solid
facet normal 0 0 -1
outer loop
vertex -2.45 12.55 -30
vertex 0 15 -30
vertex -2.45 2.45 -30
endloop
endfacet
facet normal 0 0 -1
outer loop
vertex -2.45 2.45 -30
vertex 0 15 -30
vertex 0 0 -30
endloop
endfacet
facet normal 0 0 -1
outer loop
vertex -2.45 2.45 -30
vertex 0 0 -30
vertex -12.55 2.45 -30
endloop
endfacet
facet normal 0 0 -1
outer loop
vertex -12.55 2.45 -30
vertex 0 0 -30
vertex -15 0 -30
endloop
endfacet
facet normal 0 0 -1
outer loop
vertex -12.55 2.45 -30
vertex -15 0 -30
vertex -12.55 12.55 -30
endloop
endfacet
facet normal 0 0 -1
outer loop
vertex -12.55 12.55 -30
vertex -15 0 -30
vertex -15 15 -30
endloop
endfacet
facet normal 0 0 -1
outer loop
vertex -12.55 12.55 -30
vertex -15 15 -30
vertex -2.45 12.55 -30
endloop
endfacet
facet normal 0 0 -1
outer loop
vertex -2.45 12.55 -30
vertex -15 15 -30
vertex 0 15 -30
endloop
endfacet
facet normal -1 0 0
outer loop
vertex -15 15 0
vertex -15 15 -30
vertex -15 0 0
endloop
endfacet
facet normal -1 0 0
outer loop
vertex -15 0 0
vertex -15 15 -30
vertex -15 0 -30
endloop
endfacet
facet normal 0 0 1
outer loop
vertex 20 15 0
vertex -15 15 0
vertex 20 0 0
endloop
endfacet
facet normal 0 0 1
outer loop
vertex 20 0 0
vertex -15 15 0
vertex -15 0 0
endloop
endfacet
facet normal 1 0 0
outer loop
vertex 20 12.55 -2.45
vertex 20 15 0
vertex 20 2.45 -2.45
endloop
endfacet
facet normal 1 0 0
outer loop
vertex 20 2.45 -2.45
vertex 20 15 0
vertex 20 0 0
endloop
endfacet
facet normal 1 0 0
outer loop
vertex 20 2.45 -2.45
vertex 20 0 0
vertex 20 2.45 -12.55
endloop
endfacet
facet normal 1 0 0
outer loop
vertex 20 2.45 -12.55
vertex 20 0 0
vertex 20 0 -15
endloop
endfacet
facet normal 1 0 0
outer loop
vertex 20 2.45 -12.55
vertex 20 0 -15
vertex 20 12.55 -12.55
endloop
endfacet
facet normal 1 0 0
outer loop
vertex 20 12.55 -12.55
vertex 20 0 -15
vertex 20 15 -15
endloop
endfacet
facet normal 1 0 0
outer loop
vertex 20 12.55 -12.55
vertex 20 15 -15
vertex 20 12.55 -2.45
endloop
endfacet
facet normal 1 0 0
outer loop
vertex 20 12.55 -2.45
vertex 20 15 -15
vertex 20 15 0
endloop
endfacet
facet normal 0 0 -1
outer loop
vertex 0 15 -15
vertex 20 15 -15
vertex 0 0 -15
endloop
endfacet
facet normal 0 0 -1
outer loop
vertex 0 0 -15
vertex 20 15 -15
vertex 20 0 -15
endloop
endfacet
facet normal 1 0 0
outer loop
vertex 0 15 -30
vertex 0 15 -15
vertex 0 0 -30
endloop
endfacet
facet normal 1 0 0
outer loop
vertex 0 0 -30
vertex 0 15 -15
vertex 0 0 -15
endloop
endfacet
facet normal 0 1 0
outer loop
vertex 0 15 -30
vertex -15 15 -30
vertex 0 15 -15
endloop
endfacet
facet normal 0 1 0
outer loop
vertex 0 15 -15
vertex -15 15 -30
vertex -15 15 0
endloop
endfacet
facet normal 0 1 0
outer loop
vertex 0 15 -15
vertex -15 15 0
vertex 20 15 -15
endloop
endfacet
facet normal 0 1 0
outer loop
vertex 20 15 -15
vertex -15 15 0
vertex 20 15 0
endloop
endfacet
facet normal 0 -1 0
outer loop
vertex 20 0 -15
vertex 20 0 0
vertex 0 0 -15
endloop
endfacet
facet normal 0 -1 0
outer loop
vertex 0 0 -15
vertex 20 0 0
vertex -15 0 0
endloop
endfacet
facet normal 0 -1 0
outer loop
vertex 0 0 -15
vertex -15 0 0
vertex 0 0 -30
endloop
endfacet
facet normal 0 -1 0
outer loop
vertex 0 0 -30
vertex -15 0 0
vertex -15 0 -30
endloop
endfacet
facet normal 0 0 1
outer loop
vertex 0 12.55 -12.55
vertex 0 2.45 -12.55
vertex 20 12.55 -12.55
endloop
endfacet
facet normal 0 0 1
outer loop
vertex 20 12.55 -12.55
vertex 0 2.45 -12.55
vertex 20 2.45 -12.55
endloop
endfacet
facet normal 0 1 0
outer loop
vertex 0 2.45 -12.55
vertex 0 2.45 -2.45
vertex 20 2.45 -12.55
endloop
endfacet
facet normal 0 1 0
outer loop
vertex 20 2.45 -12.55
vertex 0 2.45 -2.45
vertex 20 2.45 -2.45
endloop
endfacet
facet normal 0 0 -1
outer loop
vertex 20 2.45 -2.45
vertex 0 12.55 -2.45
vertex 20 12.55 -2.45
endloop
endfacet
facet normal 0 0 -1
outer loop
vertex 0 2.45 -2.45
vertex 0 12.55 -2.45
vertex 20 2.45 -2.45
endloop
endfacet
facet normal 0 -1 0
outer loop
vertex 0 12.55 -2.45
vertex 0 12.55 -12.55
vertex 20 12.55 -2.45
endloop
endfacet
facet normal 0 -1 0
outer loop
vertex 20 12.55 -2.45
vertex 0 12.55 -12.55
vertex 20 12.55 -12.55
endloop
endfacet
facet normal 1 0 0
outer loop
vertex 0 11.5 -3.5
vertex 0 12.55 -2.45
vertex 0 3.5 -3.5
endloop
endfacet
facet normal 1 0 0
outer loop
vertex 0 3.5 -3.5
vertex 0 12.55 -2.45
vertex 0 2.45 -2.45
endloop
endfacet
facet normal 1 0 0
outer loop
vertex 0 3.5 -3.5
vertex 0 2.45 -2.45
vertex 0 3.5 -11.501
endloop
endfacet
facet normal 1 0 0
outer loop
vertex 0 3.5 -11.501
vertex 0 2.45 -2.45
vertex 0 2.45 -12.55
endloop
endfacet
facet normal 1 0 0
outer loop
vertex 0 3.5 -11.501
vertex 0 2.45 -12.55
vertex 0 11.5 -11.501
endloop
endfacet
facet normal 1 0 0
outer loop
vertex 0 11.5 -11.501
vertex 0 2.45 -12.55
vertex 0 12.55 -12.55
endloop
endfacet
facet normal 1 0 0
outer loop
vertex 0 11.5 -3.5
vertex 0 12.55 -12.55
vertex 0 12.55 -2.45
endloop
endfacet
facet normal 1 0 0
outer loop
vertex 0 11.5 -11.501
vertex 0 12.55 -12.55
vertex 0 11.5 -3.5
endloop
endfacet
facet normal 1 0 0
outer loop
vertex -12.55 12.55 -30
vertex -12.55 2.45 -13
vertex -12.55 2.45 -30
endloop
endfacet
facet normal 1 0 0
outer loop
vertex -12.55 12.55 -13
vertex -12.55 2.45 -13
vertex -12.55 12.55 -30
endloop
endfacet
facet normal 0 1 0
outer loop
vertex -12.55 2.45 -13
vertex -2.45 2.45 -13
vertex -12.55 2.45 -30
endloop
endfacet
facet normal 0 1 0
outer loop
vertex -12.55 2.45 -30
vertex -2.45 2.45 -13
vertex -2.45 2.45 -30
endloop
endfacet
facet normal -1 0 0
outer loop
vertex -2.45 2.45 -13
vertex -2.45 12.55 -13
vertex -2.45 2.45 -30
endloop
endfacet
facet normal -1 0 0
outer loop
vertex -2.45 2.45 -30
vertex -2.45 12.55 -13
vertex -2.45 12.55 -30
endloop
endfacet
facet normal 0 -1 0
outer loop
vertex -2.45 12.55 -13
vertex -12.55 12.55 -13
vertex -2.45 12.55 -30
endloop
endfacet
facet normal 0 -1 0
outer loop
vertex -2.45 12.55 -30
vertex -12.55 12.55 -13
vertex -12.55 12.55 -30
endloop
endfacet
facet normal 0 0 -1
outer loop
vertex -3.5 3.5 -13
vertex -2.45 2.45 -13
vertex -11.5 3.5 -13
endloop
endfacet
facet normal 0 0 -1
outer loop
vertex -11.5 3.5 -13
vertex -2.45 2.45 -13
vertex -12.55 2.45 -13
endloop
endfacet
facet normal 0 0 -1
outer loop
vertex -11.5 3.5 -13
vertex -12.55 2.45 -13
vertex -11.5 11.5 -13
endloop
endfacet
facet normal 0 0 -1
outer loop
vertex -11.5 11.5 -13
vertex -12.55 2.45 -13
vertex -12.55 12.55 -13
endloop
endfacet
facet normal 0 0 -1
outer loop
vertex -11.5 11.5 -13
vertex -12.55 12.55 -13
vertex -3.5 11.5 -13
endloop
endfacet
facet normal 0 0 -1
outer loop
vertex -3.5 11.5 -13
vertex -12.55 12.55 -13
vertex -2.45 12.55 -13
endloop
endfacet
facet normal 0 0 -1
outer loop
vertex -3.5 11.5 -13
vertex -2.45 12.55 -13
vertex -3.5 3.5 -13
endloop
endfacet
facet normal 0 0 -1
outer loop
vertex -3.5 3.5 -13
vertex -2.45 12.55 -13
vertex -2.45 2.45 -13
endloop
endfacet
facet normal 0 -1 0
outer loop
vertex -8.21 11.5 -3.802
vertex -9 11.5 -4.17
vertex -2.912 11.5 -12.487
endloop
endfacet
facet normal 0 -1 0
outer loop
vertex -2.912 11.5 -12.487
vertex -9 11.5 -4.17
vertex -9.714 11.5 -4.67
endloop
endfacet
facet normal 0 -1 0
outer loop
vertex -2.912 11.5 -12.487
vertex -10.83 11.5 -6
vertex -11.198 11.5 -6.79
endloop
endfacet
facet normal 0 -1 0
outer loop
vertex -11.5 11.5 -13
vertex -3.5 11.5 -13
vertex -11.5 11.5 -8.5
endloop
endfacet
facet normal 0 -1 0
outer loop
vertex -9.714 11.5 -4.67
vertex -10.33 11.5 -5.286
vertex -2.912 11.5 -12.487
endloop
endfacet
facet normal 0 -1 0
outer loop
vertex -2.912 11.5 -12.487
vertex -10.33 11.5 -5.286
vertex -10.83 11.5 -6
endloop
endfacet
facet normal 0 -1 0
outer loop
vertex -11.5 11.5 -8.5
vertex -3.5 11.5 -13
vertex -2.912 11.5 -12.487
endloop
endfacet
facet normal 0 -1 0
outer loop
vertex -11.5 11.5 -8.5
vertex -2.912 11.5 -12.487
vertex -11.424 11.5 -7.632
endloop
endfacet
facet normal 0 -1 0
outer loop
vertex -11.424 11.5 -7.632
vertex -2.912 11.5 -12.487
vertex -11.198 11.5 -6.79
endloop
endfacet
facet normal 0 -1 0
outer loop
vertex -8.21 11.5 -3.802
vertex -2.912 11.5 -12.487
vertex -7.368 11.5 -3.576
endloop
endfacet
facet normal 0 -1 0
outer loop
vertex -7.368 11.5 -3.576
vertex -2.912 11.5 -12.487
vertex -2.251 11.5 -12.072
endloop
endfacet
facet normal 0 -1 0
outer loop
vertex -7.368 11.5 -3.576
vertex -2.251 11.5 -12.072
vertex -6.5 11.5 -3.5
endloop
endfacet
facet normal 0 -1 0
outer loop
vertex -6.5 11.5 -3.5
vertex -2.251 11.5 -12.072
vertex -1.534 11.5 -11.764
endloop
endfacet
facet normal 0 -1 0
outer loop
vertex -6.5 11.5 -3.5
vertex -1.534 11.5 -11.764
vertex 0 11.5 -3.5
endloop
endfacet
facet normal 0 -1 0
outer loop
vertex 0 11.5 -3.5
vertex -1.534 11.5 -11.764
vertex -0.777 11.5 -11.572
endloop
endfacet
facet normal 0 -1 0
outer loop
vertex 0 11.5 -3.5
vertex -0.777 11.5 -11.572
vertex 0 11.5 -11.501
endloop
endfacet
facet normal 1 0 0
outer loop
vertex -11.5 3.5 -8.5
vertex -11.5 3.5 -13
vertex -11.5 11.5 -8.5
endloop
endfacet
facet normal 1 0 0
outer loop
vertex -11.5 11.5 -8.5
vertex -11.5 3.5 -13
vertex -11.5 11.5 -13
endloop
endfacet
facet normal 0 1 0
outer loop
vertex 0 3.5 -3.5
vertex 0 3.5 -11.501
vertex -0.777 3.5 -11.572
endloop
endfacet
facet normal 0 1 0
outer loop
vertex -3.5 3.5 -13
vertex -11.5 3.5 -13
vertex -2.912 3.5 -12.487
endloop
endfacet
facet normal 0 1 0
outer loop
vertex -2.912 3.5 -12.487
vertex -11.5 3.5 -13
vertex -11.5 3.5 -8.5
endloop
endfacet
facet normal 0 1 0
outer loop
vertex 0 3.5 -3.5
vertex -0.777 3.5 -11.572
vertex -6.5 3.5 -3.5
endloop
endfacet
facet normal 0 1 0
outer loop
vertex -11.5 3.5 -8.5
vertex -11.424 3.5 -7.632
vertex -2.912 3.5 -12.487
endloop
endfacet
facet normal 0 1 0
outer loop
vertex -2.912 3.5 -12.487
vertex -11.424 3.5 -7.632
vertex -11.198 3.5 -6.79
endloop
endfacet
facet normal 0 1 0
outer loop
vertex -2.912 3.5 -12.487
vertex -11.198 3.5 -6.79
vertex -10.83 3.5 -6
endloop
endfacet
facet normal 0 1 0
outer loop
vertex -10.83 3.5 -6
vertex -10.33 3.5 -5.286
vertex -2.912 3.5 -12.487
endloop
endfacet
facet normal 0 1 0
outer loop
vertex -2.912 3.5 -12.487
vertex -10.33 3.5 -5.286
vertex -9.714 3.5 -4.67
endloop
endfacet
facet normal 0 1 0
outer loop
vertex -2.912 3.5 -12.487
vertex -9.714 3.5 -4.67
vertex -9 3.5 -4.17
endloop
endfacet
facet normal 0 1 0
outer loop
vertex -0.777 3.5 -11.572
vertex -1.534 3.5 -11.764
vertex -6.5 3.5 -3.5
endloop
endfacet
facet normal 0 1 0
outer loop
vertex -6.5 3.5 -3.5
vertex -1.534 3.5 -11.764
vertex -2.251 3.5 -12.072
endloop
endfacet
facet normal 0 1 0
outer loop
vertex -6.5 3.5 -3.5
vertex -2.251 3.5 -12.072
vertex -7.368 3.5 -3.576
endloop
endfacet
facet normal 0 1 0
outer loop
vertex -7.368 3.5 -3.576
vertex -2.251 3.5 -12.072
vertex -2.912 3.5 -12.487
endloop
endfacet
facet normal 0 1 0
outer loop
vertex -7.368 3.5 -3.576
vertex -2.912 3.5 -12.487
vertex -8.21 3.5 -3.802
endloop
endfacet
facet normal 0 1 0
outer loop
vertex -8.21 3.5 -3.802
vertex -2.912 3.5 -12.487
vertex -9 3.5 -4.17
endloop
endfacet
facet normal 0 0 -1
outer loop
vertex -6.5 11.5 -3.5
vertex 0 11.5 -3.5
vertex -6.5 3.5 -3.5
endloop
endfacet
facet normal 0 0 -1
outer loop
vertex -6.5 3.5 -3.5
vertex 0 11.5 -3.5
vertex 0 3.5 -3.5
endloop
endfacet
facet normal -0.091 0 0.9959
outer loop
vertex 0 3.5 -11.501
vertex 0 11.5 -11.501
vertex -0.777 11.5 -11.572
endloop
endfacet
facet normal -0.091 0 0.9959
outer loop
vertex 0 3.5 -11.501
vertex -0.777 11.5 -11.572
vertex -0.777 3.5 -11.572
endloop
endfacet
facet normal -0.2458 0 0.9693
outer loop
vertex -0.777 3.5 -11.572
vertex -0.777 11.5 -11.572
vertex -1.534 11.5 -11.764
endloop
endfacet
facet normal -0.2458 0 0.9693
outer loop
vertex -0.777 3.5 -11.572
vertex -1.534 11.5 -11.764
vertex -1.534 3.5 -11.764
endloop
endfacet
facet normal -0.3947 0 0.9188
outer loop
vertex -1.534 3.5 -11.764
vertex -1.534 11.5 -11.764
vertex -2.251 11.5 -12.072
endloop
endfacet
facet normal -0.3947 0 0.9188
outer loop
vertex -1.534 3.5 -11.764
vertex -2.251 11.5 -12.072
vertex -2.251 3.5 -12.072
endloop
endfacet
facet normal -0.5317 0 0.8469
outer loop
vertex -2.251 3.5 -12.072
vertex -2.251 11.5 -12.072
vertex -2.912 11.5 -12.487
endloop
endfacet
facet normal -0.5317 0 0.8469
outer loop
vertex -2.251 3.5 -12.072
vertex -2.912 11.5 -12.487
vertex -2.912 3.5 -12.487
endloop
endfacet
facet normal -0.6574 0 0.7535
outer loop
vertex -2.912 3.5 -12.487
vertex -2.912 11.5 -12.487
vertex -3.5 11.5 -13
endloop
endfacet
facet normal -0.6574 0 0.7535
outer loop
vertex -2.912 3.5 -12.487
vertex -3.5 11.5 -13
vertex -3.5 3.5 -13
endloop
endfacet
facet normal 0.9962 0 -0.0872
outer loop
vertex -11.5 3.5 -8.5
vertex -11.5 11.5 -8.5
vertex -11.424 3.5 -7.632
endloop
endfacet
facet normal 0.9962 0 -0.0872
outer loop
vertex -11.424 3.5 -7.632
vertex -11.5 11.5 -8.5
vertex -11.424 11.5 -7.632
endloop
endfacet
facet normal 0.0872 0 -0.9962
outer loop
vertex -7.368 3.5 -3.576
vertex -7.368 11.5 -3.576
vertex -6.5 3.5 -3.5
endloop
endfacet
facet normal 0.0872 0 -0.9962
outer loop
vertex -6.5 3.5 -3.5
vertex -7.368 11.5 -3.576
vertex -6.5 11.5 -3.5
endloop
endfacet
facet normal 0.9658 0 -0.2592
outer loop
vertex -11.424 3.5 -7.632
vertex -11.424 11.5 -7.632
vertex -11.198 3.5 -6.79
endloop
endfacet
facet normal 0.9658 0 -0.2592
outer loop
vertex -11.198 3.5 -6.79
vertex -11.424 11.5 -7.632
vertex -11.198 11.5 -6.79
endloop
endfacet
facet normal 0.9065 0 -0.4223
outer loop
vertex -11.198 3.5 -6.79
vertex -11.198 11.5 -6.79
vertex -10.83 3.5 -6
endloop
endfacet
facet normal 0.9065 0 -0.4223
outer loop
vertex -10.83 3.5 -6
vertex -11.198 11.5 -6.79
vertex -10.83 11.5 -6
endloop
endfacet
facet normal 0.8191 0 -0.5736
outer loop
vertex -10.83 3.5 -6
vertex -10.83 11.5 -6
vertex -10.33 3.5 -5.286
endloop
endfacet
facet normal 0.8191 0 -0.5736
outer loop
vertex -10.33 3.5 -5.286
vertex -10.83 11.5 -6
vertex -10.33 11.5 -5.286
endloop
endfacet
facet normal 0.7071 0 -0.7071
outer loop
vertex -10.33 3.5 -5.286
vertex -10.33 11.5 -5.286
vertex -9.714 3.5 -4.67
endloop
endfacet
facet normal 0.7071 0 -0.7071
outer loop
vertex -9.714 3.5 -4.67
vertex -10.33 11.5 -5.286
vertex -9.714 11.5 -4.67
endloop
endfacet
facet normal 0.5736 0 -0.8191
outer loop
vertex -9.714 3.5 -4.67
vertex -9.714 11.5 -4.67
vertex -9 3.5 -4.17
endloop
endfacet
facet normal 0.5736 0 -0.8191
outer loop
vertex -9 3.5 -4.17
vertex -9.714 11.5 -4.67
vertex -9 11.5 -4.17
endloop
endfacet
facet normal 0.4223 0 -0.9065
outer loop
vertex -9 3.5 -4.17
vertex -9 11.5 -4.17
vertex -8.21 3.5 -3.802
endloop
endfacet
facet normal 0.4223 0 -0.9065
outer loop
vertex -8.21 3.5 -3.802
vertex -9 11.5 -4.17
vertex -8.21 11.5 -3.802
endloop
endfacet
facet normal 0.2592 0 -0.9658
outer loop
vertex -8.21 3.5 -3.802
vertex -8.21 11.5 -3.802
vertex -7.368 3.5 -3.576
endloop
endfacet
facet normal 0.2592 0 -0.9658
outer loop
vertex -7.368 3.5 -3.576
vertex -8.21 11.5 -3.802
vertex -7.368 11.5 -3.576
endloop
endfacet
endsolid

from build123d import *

# Parameters (mm, degrees)
BOSS_EXTRUDE1_DEPTH = 15
SKETCH2_W           = 10.1
SKETCH2_H           = 10.1
CUT_EXTRUDE1_DEPTH  = 20
SKETCH3_W           = 10.1
SKETCH3_H           = 10.1
CUT_EXTRUDE2_DEPTH  = 17
SKETCH4_W           = 8
SKETCH4_H           = 8
CUT_EXTRUDE3_DEPTH  = 4
CUT_EXTRUDE4_REACH  = 41.051
SKETCH5_W           = 8
SKETCH5_H           = 8
FILLET1_R           = 5


with BuildPart() as part:
    # Sketch1 → Boss-Extrude1 (new body)
    with BuildSketch(Plane(origin=(0, 0, 0), x_dir=(1, 0, 0), z_dir=(0, 1, 0))):
        Polygon((0, 0), (20, 0), (20, 15), (0, 15), (0, 30), (-15, 30), (-15, 0), align=None)
    extrude(amount=BOSS_EXTRUDE1_DEPTH)

    # Sketch2 → Cut-Extrude1 (cut)
    with BuildSketch(Plane(origin=(20, 0, 0), x_dir=(0, 0, -1), z_dir=(1, 0, 0))):
        with Locations((7.5, 7.5)):
            Rectangle(SKETCH2_W, SKETCH2_H)
    extrude(amount=-CUT_EXTRUDE1_DEPTH, mode=Mode.SUBTRACT)

    # Sketch3 → Cut-Extrude2 (cut)
    with BuildSketch(Plane(origin=(0, 0, -30), x_dir=(-1, 0, 0), z_dir=(0, 0, -1))):
        with Locations((7.5, 7.5)):
            Rectangle(SKETCH3_W, SKETCH3_H)
    extrude(amount=-CUT_EXTRUDE2_DEPTH, mode=Mode.SUBTRACT)

    # Sketch4 → Cut-Extrude3 (cut)
    with BuildSketch(Plane(origin=(0, 0, -13), x_dir=(-1, 0, 0), z_dir=(0, 0, -1))):
        with Locations((7.5, 7.5)):
            Rectangle(SKETCH4_W, SKETCH4_H)
    extrude(amount=-CUT_EXTRUDE3_DEPTH, mode=Mode.SUBTRACT)

    # Cut-Extrude4: up to this face of the body (flat: up to its plane)
    cut_extrude4_end = Plane(part.part.faces().sort_by_distance((-11.5, 7.5, -11))[0])
    # Sketch5 → Cut-Extrude4 (cut, up to the picked face)
    with BuildSketch(Plane(origin=(0, 0, 0), x_dir=(0, 0, -1), z_dir=(1, 0, 0)), mode=Mode.PRIVATE) as cut_extrude4_sk1:
        with Locations((7.5, 7.5)):
            Rectangle(SKETCH5_W, SKETCH5_H)
    cut_extrude4_tool1 = split(extrude(cut_extrude4_sk1.sketch, amount=-CUT_EXTRUDE4_REACH, mode=Mode.PRIVATE), bisect_by=cut_extrude4_end, keep=Keep.BOTH, mode=Mode.PRIVATE)
    add(cut_extrude4_tool1.solids().sort_by(Axis((0, 7.5, -7.5), (-1, 0, 0)))[0], mode=Mode.SUBTRACT)

    # Fillet1
    # the kernel refuses this fillet: 5 mm, written as the material it adds along each edge
    with BuildSketch(Plane(origin=(-11.5, -9, -3.5), x_dir=(1, 0, 0), z_dir=(0, 1, 0))) as fillet1_piece_1_section:
        with BuildLine():
            CenterArc((FILLET1_R, FILLET1_R), FILLET1_R, 180, 90)
            Line((0, FILLET1_R), (0, 0))
            Line((0, 0), (FILLET1_R, 0))
        make_face()
    fillet1_piece_1 = extrude(amount=20.5, mode=Mode.PRIVATE)
    fillet1_piece_1 = split(fillet1_piece_1, bisect_by=Plane(origin=(-11.5, 0, -3.5), z_dir=(0, 1, 0)), keep=Keep.TOP, mode=Mode.PRIVATE)
    add(fillet1_piece_1)
    # the kernel refuses this fillet: 5 mm, written as the material it takes off along each edge
    with BuildSketch(Plane(origin=(-3.5, 3.5, -11.5), x_dir=(1, 0, 0), z_dir=(0, 1, 0))) as fillet1_2_piece_1:
        with BuildLine():
            CenterArc((3.570714214, 5), FILLET1_R, 224.427004001, 45.572995999)
            Line((0, 1.5), (0, 0))
            Line((0, 0), (3.570714214, 0))
        make_face()
    extrude(amount=8, mode=Mode.SUBTRACT)


solid = part.part
